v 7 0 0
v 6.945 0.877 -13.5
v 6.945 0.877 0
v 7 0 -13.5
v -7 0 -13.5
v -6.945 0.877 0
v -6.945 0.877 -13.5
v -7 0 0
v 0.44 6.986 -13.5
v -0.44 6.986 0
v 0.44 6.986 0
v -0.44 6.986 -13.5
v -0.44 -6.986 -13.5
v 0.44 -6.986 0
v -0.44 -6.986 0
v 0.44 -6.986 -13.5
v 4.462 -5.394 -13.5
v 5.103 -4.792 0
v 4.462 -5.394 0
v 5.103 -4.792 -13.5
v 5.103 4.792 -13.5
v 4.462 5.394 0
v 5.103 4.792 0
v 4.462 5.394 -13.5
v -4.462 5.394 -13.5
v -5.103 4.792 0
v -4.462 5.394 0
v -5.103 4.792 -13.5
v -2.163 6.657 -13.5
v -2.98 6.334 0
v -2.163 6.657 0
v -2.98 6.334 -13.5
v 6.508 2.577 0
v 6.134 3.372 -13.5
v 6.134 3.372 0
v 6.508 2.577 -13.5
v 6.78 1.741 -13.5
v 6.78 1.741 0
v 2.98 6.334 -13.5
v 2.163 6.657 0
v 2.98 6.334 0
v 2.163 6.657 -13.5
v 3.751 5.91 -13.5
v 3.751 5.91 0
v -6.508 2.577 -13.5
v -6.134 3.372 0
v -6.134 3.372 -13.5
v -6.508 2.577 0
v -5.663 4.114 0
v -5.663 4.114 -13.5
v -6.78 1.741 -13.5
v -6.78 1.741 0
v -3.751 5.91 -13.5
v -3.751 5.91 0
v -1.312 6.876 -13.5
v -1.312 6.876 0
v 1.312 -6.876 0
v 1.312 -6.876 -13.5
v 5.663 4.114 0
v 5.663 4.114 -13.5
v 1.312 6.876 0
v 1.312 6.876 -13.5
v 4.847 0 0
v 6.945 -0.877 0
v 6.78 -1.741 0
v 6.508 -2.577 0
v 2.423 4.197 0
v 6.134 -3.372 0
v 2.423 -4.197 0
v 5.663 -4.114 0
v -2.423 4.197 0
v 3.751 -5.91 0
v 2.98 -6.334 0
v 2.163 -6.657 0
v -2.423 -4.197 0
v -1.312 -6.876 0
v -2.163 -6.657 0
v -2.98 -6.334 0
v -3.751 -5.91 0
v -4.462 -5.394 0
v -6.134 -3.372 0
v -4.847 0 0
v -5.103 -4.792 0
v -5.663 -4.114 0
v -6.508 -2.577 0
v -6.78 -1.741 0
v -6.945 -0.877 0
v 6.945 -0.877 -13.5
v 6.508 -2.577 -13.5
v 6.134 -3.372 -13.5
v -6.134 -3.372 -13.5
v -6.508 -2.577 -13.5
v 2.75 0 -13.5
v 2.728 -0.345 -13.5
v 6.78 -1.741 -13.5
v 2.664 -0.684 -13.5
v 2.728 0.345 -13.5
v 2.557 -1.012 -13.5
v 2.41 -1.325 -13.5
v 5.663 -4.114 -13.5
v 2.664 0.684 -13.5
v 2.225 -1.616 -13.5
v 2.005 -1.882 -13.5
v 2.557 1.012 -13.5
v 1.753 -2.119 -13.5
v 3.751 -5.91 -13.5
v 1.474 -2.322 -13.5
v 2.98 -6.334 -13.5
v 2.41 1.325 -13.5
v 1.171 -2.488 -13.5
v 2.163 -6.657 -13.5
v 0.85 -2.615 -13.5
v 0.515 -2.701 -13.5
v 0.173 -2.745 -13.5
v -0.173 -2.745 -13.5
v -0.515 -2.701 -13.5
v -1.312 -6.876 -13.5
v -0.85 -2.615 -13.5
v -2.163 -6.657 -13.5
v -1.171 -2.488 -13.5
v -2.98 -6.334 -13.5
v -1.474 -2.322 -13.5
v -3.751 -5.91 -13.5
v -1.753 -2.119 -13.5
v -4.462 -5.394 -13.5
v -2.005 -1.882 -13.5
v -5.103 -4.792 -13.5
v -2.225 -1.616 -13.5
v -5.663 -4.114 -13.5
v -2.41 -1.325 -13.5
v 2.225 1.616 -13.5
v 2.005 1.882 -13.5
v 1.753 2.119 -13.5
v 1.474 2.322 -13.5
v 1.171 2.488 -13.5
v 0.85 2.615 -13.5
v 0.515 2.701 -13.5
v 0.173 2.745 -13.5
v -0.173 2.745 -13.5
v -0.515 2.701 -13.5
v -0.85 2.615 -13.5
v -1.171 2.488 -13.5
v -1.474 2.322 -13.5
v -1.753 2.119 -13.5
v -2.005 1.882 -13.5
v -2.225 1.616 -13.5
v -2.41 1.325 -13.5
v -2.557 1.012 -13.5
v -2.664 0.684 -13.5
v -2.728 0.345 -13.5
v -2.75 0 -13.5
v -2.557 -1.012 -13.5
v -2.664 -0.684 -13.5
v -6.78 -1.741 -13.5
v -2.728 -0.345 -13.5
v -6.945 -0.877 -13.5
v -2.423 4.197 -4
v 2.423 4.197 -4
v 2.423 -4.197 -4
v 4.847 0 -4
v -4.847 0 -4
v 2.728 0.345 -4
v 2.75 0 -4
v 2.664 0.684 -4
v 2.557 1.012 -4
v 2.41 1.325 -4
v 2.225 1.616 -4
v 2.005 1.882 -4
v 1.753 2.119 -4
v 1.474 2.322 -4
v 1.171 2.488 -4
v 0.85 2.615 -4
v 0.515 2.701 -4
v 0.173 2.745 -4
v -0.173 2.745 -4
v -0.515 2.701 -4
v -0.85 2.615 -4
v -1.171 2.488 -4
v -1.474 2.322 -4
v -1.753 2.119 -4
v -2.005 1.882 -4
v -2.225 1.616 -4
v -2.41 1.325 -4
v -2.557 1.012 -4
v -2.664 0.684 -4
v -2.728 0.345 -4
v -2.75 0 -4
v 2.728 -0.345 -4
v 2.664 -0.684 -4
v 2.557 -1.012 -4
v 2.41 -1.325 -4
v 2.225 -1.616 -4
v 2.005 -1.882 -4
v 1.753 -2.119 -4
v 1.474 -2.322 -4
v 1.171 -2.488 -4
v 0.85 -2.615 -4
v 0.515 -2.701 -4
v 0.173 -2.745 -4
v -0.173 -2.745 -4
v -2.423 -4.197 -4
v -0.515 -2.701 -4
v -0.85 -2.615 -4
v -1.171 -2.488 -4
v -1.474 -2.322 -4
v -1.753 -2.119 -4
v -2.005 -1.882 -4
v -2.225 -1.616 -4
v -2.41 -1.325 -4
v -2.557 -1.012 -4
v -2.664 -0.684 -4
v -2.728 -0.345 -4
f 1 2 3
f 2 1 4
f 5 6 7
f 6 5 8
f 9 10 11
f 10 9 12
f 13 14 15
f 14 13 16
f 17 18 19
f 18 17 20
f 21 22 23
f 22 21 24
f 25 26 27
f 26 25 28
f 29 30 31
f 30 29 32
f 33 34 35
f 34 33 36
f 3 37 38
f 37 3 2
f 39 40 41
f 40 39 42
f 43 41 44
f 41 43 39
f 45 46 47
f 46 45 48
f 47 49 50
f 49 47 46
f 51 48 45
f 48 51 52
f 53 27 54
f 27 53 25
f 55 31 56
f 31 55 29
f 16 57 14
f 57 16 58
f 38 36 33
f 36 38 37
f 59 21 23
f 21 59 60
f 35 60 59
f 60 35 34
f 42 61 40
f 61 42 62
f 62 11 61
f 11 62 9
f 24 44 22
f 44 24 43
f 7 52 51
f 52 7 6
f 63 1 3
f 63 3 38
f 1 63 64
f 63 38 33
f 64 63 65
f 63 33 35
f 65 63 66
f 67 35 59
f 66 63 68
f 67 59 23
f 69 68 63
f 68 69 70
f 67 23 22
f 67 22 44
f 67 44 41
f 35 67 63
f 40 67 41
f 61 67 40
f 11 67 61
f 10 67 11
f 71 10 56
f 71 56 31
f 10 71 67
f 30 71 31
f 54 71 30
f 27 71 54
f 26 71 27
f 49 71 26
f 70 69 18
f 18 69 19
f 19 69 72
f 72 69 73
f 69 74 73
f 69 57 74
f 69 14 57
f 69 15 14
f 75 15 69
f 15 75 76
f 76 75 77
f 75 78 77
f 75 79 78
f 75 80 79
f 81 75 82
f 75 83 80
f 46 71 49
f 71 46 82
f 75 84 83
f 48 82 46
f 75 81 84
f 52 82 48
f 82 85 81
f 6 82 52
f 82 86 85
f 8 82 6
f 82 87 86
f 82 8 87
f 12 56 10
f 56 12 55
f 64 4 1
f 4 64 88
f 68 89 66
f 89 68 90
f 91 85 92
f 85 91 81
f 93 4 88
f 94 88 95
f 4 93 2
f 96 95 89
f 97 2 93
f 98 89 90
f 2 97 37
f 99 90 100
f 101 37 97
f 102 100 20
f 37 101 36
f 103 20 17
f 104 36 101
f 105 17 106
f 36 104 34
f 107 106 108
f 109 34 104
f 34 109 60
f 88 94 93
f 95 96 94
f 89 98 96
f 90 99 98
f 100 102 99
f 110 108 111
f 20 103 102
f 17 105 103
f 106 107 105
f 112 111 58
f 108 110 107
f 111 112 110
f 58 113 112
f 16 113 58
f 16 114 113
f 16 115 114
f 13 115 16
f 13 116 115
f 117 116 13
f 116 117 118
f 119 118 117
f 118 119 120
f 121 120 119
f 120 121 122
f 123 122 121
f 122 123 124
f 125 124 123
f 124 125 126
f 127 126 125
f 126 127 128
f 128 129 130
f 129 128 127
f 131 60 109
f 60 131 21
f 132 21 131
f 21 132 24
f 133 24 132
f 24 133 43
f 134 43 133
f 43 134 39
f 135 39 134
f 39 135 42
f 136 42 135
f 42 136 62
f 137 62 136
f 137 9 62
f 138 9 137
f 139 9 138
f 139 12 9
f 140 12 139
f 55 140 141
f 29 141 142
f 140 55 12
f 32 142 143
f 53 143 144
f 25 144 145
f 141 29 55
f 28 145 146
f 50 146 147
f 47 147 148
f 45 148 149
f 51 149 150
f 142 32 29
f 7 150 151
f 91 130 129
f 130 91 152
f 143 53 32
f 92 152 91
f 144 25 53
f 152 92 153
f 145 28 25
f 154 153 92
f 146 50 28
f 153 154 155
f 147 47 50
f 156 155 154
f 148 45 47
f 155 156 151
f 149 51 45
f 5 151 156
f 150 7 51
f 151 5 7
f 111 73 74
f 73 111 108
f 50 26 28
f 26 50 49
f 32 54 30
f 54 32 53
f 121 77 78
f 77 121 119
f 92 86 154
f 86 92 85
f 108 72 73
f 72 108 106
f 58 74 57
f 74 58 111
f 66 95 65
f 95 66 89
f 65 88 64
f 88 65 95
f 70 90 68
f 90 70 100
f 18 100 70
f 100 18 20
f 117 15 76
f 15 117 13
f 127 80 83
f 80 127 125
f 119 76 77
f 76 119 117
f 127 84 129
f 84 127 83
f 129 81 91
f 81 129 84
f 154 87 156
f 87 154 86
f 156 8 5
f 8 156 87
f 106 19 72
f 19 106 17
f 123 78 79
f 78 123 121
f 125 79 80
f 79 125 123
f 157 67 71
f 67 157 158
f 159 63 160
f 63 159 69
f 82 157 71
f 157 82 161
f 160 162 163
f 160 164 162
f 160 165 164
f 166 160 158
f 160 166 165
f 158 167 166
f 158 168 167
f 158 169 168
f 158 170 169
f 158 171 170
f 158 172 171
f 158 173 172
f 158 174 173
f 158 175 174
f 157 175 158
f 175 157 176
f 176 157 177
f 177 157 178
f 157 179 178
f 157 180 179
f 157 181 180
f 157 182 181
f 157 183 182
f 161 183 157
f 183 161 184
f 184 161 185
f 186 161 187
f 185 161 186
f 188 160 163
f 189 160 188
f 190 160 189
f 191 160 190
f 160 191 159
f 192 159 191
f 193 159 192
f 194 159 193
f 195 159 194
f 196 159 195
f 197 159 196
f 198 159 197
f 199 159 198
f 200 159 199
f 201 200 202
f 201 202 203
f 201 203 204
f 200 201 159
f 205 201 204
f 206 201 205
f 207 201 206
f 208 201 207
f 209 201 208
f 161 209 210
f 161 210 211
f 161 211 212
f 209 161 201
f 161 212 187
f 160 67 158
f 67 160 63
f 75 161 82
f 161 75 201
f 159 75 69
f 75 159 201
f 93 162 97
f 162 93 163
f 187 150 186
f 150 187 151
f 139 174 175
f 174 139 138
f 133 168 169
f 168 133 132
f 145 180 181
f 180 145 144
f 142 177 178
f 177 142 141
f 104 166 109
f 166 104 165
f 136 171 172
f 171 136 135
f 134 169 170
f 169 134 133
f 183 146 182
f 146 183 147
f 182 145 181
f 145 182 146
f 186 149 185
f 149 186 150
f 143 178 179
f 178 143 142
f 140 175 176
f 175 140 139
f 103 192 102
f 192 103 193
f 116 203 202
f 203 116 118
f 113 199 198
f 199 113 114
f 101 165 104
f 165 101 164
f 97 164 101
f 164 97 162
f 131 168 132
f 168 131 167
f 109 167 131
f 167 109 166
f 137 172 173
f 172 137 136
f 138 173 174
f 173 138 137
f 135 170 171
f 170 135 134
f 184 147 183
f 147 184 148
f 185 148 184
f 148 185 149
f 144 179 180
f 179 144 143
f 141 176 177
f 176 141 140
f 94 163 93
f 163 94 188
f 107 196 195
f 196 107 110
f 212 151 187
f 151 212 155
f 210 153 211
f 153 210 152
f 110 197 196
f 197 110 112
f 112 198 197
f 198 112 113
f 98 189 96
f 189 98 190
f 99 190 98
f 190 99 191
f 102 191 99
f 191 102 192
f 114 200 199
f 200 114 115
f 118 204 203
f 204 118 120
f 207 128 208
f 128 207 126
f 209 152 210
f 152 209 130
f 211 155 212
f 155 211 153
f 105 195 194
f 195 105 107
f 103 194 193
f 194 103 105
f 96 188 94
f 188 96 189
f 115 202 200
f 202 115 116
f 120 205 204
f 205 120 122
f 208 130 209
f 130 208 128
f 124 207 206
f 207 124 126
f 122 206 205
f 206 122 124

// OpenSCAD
$fn = 50;


difference() {
	union() {
		translate(v = [0, 0, -13.5000000000]) {
			cylinder(h = 13.5000000000, r = 7.0000000000);
		}
		translate(v = [0, 0, -12.0000000000]) {
			cylinder(h = 12, r = 2.8750000000);
		}
	}
	union() {
		translate(v = [0, 0, 0]) {
			rotate(a = [0, 0, 0]) {
				difference() {
					union() {
						translate(v = [0, 0, -4]) {
							linear_extrude(height = 4) {
								polygon(points = [[4.8468000000, 0.0000000000], [2.4234000000, 4.1974519271], [-2.4234000000, 4.1974519271], [-4.8468000000, 0.0000000000], [-2.4234000000, -4.1974519271], [2.4234000000, -4.1974519271]]);
							}
						}
					}
					union();
				}
			}
		}
		#translate(v = [0, 0, -100.0000000000]) {
			cylinder(h = 200, r = 2.7500000000);
		}
	}
}
